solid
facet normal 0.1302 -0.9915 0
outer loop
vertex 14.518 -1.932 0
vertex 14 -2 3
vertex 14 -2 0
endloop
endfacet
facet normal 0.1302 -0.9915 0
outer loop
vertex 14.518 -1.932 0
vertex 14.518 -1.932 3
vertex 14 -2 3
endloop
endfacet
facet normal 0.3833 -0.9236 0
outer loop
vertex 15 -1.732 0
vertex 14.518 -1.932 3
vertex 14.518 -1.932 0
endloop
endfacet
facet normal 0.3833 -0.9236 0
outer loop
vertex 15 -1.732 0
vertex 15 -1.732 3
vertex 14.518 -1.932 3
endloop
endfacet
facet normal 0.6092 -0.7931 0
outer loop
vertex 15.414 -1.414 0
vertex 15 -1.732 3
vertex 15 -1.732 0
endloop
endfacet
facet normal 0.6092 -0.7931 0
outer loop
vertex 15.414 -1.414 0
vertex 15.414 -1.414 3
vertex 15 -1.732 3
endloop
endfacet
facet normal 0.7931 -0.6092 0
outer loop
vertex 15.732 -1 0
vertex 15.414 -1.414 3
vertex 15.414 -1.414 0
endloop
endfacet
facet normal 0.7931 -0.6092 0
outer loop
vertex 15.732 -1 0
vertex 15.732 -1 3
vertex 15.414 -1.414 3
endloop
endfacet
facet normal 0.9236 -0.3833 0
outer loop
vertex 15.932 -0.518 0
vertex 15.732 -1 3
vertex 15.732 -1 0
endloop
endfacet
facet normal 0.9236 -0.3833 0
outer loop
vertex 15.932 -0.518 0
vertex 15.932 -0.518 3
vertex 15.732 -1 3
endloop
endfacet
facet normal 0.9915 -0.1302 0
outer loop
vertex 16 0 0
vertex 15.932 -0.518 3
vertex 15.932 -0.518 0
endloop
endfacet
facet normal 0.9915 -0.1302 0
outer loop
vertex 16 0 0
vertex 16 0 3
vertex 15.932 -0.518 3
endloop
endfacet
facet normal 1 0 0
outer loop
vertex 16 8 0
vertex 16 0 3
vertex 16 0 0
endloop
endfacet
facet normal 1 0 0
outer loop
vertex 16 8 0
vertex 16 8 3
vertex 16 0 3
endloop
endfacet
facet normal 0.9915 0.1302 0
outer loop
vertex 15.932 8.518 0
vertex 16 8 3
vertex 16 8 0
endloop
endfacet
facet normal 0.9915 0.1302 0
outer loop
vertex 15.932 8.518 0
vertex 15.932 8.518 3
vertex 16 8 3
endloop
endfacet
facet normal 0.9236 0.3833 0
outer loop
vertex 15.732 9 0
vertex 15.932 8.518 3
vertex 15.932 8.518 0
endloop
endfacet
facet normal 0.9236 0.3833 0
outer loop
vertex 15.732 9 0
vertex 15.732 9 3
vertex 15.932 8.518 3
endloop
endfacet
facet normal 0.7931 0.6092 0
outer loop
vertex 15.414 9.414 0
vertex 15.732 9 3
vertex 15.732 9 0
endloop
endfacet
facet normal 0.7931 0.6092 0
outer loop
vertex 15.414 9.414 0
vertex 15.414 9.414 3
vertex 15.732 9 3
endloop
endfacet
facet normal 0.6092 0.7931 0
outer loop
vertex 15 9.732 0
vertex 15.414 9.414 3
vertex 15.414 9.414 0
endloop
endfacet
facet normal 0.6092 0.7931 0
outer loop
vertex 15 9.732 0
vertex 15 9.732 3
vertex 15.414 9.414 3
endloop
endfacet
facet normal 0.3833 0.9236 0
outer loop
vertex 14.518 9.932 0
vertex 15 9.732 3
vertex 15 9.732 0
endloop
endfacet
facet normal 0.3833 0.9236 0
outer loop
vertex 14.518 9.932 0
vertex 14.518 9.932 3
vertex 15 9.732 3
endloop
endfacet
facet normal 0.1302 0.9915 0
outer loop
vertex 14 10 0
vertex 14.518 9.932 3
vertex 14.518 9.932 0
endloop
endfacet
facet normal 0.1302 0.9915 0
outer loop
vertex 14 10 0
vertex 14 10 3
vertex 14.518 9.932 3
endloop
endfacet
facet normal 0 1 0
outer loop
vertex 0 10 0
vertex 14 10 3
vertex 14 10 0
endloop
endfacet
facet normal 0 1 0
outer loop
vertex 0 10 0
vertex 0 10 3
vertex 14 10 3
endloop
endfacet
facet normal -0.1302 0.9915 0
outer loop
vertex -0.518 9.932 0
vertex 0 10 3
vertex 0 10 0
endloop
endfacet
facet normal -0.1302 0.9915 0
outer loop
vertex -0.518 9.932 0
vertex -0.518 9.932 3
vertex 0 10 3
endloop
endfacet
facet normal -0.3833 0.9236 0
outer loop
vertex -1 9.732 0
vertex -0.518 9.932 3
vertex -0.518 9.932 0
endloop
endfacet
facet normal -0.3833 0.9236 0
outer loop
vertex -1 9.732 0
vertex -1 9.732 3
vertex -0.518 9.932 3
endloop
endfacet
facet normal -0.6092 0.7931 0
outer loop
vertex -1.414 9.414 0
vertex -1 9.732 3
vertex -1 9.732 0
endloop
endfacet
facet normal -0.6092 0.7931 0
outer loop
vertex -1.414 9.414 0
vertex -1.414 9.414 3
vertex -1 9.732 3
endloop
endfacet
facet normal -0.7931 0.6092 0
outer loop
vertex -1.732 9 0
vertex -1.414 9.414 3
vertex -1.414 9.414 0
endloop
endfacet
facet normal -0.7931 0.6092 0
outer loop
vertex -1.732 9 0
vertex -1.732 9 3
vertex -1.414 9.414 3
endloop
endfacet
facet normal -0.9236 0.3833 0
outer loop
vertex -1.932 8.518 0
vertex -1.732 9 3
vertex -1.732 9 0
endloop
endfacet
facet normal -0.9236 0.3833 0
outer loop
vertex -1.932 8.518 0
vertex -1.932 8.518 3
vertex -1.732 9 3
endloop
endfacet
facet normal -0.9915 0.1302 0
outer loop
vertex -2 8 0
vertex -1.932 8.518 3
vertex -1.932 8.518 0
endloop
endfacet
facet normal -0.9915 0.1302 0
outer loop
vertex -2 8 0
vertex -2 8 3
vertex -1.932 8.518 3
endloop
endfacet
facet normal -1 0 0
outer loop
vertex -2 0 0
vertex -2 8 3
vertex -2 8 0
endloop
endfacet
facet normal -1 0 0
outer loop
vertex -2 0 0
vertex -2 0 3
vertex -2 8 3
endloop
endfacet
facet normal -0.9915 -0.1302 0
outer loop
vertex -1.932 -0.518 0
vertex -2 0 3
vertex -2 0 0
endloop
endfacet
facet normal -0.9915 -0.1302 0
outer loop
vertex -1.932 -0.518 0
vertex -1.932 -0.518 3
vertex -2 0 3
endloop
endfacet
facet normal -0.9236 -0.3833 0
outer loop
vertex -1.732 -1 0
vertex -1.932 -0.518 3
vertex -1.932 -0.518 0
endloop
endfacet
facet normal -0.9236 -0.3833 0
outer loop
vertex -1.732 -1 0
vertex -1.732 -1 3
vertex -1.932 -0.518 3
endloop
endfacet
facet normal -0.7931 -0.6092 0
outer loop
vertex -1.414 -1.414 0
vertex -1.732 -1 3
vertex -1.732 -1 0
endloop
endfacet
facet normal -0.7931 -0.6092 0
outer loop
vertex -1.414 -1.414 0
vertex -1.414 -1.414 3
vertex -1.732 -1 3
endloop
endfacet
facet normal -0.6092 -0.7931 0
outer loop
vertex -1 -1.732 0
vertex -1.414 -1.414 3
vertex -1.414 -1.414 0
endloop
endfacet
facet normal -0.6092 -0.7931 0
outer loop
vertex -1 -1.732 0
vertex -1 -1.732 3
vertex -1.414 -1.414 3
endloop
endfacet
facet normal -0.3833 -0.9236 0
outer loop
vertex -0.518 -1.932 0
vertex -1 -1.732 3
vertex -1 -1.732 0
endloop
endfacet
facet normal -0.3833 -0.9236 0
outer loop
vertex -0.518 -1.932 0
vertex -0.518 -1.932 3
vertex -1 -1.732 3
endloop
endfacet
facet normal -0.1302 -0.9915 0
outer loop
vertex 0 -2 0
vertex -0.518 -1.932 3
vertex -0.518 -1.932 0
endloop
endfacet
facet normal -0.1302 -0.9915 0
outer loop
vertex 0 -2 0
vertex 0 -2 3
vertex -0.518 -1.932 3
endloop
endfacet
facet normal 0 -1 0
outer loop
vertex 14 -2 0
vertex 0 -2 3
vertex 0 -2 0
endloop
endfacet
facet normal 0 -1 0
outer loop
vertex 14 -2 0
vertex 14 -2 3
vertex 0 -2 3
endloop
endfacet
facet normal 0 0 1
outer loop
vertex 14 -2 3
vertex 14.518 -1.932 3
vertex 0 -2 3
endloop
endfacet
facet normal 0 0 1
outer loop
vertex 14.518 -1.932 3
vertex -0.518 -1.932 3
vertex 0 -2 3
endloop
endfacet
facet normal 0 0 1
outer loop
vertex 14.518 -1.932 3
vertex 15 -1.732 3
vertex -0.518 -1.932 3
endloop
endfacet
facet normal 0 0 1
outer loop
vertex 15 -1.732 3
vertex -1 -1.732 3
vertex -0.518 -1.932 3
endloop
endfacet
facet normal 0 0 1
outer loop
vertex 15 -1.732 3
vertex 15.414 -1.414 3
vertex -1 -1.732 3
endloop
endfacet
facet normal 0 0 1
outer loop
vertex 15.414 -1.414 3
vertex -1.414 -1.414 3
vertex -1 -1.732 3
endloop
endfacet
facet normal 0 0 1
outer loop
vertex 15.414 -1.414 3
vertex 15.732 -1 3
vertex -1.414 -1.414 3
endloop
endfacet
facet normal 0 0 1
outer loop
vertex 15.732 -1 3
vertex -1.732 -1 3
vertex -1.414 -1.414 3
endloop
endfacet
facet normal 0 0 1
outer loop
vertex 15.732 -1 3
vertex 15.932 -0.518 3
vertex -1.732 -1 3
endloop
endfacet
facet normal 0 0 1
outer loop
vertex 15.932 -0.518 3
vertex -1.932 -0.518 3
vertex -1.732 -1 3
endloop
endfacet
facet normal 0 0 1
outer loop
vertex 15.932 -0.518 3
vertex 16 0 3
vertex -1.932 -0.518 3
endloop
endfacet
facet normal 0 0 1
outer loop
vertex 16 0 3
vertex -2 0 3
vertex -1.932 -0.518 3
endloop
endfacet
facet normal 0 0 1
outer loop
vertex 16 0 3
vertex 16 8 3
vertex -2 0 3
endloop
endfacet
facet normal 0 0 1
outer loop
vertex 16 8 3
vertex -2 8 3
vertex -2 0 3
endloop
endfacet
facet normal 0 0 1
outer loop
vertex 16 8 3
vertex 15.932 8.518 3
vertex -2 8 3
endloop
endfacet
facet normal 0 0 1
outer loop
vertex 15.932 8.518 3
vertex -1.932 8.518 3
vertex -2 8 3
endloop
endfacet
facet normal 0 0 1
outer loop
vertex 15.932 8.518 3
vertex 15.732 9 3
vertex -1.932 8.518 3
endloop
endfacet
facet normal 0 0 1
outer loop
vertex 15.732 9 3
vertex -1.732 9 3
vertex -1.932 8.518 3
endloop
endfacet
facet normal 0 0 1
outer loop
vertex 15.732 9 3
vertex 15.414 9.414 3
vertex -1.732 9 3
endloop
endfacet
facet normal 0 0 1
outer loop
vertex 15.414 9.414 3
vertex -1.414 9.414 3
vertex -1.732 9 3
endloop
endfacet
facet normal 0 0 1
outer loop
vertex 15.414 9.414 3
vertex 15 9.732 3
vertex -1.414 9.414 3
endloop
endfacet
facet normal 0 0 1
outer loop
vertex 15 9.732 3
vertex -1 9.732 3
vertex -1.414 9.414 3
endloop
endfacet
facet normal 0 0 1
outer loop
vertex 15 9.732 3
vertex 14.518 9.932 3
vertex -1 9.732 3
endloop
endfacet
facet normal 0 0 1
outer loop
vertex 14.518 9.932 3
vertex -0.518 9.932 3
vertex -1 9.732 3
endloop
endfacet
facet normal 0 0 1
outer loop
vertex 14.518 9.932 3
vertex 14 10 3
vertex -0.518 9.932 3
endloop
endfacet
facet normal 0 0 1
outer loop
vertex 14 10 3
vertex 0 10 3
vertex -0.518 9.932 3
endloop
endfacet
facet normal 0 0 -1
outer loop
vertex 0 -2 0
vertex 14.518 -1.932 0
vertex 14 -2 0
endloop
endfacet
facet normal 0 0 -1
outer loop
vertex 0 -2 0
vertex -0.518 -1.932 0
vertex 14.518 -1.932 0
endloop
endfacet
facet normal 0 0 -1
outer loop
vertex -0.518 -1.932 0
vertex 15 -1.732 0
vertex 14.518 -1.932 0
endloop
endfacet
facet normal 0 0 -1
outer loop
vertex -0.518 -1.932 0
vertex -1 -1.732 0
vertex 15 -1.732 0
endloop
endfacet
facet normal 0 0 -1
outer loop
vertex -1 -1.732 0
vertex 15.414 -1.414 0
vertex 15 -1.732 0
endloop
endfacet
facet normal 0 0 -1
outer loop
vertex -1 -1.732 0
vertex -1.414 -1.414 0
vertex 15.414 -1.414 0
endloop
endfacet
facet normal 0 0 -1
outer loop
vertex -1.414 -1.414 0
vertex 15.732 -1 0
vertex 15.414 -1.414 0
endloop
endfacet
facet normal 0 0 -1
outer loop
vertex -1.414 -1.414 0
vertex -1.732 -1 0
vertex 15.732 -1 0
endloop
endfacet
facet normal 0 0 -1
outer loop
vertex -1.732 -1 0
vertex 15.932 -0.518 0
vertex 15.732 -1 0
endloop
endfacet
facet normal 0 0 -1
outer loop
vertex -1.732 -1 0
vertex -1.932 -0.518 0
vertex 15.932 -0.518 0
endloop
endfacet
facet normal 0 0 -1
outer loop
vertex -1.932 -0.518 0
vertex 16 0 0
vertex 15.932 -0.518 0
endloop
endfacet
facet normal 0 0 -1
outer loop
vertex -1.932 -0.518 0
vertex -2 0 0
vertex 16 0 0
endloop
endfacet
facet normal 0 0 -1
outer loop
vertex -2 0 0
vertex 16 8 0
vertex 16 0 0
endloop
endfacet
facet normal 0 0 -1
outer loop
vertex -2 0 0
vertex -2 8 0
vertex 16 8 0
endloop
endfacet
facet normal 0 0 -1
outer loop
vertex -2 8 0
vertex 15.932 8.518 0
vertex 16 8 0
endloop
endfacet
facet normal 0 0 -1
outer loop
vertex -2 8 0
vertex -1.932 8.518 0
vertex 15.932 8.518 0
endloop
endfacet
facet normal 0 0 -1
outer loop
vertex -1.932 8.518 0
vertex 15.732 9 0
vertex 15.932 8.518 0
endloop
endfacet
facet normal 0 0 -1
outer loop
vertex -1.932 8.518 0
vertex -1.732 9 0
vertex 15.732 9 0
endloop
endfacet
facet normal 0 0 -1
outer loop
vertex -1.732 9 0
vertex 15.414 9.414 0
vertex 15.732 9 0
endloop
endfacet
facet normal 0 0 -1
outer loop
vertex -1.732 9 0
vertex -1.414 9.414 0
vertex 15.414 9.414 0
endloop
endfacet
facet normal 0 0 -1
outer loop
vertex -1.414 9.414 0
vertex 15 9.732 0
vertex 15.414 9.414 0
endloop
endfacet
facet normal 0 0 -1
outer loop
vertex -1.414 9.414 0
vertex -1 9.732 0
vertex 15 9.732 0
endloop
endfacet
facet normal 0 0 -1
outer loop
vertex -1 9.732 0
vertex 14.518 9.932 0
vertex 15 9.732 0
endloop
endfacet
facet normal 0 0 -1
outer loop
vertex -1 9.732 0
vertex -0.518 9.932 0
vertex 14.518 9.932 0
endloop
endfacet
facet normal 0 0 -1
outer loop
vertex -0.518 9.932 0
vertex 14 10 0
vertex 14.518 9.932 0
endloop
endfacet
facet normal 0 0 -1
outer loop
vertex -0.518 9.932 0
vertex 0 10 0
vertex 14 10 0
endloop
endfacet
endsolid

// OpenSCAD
// A 2D minkowski: the classic rounded-rectangle idiom.
$fn = 24;
linear_extrude(3) minkowski() { square([14, 8]); circle(2); }
